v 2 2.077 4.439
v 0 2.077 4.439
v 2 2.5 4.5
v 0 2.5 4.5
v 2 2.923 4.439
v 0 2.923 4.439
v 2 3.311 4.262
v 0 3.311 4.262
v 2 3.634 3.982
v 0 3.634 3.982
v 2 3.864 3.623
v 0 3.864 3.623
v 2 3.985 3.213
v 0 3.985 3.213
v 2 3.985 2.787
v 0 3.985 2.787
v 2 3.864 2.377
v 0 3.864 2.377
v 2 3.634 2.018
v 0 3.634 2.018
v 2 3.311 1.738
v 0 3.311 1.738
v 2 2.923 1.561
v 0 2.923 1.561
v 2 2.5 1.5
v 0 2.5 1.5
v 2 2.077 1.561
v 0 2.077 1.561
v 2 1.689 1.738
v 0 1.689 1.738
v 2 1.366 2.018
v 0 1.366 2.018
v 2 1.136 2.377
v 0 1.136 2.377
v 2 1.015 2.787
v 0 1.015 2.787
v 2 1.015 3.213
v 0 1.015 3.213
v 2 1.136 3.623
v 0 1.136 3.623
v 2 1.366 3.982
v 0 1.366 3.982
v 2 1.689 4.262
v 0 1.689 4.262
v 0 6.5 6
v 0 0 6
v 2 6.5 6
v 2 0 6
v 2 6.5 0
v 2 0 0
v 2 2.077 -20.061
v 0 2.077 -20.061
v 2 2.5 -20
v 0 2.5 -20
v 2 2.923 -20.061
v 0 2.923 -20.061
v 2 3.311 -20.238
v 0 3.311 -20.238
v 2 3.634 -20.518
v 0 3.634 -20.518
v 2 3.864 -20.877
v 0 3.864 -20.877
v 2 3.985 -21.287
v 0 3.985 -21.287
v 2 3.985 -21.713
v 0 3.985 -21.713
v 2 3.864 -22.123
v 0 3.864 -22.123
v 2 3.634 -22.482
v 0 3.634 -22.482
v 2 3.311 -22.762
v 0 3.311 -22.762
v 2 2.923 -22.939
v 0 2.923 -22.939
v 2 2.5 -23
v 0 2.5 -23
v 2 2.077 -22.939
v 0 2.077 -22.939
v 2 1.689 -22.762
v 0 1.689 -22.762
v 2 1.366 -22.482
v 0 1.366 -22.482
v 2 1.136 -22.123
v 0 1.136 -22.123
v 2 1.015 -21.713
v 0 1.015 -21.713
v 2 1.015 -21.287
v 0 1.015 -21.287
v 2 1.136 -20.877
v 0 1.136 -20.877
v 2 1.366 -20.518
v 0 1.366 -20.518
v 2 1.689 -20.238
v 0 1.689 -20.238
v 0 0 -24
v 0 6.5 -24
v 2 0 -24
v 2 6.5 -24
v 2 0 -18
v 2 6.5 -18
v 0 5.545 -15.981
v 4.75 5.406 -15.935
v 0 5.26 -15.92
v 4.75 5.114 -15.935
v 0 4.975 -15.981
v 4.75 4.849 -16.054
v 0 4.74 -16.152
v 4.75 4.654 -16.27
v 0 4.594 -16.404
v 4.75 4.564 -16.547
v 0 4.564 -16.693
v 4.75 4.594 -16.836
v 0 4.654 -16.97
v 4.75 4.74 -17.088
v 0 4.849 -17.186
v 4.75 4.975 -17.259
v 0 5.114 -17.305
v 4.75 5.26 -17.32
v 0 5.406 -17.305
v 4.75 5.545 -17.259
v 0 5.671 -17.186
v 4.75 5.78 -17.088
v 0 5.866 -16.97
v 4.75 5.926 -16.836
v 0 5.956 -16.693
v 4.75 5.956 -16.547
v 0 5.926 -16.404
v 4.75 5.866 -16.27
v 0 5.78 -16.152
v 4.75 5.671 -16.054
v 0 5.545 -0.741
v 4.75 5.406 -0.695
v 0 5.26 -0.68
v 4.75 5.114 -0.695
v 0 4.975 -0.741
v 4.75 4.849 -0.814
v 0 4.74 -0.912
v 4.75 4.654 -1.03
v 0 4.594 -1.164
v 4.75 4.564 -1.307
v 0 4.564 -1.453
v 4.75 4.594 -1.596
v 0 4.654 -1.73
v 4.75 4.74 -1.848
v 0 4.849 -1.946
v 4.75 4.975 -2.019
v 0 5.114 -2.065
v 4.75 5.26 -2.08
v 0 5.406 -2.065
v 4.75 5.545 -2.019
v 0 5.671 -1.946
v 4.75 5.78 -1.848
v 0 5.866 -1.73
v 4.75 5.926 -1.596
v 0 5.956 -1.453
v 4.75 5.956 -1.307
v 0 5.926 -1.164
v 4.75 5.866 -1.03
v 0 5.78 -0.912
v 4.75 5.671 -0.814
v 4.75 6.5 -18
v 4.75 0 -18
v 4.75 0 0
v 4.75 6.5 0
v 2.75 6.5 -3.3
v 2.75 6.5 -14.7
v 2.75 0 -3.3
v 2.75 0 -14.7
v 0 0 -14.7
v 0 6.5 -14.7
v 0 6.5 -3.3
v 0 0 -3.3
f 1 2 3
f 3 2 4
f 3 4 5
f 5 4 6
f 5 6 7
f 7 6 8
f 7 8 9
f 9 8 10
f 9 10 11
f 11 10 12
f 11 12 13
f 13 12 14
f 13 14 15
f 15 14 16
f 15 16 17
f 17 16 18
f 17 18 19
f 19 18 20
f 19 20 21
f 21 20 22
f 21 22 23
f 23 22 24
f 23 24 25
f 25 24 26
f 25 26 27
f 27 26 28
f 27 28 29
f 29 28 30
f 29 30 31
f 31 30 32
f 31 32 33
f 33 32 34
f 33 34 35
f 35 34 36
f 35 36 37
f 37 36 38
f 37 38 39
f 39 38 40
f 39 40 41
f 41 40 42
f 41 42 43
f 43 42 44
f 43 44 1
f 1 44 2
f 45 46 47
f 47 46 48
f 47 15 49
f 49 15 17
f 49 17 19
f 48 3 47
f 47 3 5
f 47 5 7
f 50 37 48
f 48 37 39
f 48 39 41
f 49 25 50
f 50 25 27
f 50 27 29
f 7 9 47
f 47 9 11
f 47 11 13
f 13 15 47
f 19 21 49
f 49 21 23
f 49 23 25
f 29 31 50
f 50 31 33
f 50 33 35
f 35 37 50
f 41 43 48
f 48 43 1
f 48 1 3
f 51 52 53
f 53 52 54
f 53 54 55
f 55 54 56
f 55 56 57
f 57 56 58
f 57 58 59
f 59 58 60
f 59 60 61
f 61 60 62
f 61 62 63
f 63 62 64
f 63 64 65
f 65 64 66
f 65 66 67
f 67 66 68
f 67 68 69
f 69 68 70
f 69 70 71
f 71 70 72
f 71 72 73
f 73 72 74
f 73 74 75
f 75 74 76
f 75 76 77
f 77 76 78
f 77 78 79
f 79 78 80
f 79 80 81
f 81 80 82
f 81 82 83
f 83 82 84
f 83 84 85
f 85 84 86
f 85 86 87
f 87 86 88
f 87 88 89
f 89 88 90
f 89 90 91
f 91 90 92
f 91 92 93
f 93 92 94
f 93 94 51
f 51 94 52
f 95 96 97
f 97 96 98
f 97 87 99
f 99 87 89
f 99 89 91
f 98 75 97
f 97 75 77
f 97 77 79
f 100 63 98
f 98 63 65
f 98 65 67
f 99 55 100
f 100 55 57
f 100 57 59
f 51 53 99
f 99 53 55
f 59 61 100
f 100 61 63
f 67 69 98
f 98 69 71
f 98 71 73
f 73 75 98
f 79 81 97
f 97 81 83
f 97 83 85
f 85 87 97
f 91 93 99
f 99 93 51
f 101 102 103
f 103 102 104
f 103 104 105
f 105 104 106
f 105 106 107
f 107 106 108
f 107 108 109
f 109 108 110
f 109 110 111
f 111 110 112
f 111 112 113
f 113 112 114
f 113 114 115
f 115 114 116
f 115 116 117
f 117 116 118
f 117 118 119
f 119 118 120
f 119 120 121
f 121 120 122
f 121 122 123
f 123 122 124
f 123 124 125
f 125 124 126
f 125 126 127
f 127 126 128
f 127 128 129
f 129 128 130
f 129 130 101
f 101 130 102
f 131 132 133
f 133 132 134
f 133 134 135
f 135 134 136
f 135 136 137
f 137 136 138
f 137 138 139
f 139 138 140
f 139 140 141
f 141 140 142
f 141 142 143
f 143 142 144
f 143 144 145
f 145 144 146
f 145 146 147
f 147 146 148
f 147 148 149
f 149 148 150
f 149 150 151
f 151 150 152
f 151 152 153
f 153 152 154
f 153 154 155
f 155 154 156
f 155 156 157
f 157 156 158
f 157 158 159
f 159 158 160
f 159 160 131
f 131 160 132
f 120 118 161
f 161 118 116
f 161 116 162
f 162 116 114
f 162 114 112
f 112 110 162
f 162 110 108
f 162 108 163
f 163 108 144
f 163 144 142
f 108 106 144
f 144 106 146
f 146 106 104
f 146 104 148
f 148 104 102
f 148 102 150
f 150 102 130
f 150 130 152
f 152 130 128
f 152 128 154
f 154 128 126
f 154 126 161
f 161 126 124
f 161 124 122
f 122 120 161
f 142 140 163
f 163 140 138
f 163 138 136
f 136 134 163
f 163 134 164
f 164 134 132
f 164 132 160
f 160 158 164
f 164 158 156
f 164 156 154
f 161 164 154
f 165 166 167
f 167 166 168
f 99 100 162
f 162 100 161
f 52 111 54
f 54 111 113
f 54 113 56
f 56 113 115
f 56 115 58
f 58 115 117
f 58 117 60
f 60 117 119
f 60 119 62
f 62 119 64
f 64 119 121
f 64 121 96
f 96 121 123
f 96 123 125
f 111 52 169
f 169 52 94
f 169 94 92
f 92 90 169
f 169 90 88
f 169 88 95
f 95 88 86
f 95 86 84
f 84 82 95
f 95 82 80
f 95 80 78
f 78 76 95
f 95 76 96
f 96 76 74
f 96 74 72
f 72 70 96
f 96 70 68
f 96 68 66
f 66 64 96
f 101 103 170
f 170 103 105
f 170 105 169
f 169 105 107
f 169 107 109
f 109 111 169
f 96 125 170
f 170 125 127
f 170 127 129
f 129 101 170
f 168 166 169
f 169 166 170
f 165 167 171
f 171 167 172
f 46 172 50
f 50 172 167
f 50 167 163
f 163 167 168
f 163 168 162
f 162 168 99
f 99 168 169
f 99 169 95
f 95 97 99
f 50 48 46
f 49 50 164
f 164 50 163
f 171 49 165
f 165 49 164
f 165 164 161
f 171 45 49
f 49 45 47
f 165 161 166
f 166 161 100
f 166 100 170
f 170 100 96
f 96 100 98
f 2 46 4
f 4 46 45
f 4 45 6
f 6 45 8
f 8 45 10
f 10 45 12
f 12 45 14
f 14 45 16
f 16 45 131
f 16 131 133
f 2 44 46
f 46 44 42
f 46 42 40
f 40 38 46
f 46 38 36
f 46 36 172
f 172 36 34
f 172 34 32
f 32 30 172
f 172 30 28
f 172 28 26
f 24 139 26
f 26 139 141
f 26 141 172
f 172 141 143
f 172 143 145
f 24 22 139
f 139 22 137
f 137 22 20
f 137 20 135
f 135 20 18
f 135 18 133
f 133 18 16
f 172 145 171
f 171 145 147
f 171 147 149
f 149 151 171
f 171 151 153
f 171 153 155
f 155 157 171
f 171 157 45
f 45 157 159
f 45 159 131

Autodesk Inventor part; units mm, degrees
ref_plane "YZ Plane" through (0, 0, 0) normal (1, 0, 0) x (0, 1, 0)
ref_plane "XZ Plane" through (0, 0, 0) normal (0, 1, 0) x (-1, 0, 0)
ref_plane "XY Plane" through (0, 0, 0) normal (0, 0, 1) x (1, 0, 0)
sketch "Sketch1" plane through (0, 0, 0) normal (1, 0, 0) x (0, 1, 0)
  line L0 (0, 0) -> (6.5, 0)
  line L1 (6.5, 0) -> (6.5, -18)
  line L2 (6.5, -18) -> (0, -18)
  line L3 (0, -18) -> (0, 0)
  dimension "d0" = 6.5
  dimension "d1" = 18
extrude "Extrusion1" add sketch "Sketch1" along normal blind 2.75
sketch "Sketch2" plane through (2.75, 0, 0) normal (1, 0, 0) x (0, 0, -1)
  line L0 (0, 6.5) -> (0, 0) projected
  line L1 (0, 0) -> (18, 0) projected
  line L2 (0, 6.5) -> (3.3, 6.5)
  line L3 (3.3, 6.5) -> (3.3, 0)
  line L4 (3.3, 0) -> (0, 0)
  line L5 (0, 0) -> (0, 6.5)
  line L6 (18, 0) -> (18, 6.5) projected
  line L7 (18, 6.5) -> (0, 6.5) projected
  line L8 (18, 0) -> (14.7, 0)
  line L9 (14.7, 0) -> (14.7, 6.5)
  line L10 (14.7, 6.5) -> (18, 6.5)
  line L11 (18, 6.5) -> (18, 0)
  line L12 (3.3, 6.5) -> (14.7, 6.5)
  line L13 (14.7, 6.5) -> (14.7, 0)
  line L14 (14.7, 0) -> (3.3, 0)
  line L15 (3.3, 0) -> (3.3, 6.5)
  dimension "d4" = 3.3
  dimension "d5" = 3.3
extrude "Extrusion2" cut sketch "Sketch2" against normal blind 2.75 contours L7 L9 L1 L3
sketch "Sketch3" plane through (2.75, 0, 0) normal (1, 0, 0) x (0, 0, -1)
  line L0 (18, 6.5) -> (14.7, 6.5) projected
  line L1 (0, 0) -> (18, 0)
  line L2 (18, 0) -> (18, 6.5)
  line L3 (18, 6.5) -> (0, 6.5)
  line L4 (0, 6.5) -> (0, 0)
extrude "Extrusion3" add sketch "Sketch3" along normal blind 2
sketch "Sketch4" plane through (4.75, 0, 0) normal (1, 0, 0) x (0, 0, -1)
  line L0 (3.3, 6.5) -> (0, 6.5) projected
  line L1 (0, 6.5) -> (1.38, 6.5)
  line L2 (1.38, 6.5) -> (1.38, 5.26)
  line L3 (18, 6.5) -> (14.7, 6.5) projected
  line L4 (18, 6.5) -> (16.62, 6.5)
  line L5 (16.62, 6.5) -> (16.62, 5.26)
  circle A0 centre (1.38, 5.26) radius 0.7
  circle A1 centre (16.62, 5.26) radius 0.7
  point P0 (0, 0)
  dimension "d10" = 1.38
  dimension "d11" = 1.24
  dimension "d12" = 1.38
  dimension "d13" = 1.24
  dimension "d14" = 1.4
  dimension "d15" = 1.4
extrude "Extrusion4" cut sketch "Sketch4" against normal blind 20
sketch "Sketch5" plane through (0, 0, 0) normal (-1, 0, 0) x (0, 0, 1)
  line L0 (-18, 6.5) -> (0, 6.5) projected
  line L1 (0, 6.5) -> (6, 6.5)
  line L2 (6, 6.5) -> (6, 0)
  line L3 (6, 0) -> (0, 0)
  line L4 (0, 0) -> (0, 6.5)
  line L5 (-18, 0) -> (-18, 6.5) projected
  line L6 (-18, 6.5) -> (-24, 6.5)
  line L7 (-24, 6.5) -> (-24, 0)
  line L8 (-24, 0) -> (-18, 0)
  line L9 (-18, 0) -> (-18, 6.5)
  line L10 (-24, 3.25) -> (-21.5, 3.25)
  line L11 (-24, 6.5) -> (-24, 2.5)
  line L12 (-24, 2.5) -> (-21.5, 2.5)
  circle A0 centre (-21.5, 2.5) radius 1.5
  line L13 (6, 6.5) -> (6, 2.5)
  line L14 (6, 2.5) -> (3, 2.5)
  circle A1 centre (3, 2.5) radius 1.5
  point P0 (0, 0)
  dimension "d18" = 6
  dimension "d19" = 6.5
  dimension "d20" = 6
  dimension "d21" = 6.5
  dimension "d27" = 2.5
  dimension "d28" = 4
  dimension "d29" = 2.5
  dimension "d30" = 3
  dimension "d31" = 4
  dimension "d32" = 3
  dimension "d33" = 3
extrude "Extrusion6" add sketch "Sketch5" against normal blind 2 contours L1 L2 L3 L4 | L5 L8 L7 L12 A0 L10 L6 | L10 A0 L12 L7
properties part number "arduino_clamp"
